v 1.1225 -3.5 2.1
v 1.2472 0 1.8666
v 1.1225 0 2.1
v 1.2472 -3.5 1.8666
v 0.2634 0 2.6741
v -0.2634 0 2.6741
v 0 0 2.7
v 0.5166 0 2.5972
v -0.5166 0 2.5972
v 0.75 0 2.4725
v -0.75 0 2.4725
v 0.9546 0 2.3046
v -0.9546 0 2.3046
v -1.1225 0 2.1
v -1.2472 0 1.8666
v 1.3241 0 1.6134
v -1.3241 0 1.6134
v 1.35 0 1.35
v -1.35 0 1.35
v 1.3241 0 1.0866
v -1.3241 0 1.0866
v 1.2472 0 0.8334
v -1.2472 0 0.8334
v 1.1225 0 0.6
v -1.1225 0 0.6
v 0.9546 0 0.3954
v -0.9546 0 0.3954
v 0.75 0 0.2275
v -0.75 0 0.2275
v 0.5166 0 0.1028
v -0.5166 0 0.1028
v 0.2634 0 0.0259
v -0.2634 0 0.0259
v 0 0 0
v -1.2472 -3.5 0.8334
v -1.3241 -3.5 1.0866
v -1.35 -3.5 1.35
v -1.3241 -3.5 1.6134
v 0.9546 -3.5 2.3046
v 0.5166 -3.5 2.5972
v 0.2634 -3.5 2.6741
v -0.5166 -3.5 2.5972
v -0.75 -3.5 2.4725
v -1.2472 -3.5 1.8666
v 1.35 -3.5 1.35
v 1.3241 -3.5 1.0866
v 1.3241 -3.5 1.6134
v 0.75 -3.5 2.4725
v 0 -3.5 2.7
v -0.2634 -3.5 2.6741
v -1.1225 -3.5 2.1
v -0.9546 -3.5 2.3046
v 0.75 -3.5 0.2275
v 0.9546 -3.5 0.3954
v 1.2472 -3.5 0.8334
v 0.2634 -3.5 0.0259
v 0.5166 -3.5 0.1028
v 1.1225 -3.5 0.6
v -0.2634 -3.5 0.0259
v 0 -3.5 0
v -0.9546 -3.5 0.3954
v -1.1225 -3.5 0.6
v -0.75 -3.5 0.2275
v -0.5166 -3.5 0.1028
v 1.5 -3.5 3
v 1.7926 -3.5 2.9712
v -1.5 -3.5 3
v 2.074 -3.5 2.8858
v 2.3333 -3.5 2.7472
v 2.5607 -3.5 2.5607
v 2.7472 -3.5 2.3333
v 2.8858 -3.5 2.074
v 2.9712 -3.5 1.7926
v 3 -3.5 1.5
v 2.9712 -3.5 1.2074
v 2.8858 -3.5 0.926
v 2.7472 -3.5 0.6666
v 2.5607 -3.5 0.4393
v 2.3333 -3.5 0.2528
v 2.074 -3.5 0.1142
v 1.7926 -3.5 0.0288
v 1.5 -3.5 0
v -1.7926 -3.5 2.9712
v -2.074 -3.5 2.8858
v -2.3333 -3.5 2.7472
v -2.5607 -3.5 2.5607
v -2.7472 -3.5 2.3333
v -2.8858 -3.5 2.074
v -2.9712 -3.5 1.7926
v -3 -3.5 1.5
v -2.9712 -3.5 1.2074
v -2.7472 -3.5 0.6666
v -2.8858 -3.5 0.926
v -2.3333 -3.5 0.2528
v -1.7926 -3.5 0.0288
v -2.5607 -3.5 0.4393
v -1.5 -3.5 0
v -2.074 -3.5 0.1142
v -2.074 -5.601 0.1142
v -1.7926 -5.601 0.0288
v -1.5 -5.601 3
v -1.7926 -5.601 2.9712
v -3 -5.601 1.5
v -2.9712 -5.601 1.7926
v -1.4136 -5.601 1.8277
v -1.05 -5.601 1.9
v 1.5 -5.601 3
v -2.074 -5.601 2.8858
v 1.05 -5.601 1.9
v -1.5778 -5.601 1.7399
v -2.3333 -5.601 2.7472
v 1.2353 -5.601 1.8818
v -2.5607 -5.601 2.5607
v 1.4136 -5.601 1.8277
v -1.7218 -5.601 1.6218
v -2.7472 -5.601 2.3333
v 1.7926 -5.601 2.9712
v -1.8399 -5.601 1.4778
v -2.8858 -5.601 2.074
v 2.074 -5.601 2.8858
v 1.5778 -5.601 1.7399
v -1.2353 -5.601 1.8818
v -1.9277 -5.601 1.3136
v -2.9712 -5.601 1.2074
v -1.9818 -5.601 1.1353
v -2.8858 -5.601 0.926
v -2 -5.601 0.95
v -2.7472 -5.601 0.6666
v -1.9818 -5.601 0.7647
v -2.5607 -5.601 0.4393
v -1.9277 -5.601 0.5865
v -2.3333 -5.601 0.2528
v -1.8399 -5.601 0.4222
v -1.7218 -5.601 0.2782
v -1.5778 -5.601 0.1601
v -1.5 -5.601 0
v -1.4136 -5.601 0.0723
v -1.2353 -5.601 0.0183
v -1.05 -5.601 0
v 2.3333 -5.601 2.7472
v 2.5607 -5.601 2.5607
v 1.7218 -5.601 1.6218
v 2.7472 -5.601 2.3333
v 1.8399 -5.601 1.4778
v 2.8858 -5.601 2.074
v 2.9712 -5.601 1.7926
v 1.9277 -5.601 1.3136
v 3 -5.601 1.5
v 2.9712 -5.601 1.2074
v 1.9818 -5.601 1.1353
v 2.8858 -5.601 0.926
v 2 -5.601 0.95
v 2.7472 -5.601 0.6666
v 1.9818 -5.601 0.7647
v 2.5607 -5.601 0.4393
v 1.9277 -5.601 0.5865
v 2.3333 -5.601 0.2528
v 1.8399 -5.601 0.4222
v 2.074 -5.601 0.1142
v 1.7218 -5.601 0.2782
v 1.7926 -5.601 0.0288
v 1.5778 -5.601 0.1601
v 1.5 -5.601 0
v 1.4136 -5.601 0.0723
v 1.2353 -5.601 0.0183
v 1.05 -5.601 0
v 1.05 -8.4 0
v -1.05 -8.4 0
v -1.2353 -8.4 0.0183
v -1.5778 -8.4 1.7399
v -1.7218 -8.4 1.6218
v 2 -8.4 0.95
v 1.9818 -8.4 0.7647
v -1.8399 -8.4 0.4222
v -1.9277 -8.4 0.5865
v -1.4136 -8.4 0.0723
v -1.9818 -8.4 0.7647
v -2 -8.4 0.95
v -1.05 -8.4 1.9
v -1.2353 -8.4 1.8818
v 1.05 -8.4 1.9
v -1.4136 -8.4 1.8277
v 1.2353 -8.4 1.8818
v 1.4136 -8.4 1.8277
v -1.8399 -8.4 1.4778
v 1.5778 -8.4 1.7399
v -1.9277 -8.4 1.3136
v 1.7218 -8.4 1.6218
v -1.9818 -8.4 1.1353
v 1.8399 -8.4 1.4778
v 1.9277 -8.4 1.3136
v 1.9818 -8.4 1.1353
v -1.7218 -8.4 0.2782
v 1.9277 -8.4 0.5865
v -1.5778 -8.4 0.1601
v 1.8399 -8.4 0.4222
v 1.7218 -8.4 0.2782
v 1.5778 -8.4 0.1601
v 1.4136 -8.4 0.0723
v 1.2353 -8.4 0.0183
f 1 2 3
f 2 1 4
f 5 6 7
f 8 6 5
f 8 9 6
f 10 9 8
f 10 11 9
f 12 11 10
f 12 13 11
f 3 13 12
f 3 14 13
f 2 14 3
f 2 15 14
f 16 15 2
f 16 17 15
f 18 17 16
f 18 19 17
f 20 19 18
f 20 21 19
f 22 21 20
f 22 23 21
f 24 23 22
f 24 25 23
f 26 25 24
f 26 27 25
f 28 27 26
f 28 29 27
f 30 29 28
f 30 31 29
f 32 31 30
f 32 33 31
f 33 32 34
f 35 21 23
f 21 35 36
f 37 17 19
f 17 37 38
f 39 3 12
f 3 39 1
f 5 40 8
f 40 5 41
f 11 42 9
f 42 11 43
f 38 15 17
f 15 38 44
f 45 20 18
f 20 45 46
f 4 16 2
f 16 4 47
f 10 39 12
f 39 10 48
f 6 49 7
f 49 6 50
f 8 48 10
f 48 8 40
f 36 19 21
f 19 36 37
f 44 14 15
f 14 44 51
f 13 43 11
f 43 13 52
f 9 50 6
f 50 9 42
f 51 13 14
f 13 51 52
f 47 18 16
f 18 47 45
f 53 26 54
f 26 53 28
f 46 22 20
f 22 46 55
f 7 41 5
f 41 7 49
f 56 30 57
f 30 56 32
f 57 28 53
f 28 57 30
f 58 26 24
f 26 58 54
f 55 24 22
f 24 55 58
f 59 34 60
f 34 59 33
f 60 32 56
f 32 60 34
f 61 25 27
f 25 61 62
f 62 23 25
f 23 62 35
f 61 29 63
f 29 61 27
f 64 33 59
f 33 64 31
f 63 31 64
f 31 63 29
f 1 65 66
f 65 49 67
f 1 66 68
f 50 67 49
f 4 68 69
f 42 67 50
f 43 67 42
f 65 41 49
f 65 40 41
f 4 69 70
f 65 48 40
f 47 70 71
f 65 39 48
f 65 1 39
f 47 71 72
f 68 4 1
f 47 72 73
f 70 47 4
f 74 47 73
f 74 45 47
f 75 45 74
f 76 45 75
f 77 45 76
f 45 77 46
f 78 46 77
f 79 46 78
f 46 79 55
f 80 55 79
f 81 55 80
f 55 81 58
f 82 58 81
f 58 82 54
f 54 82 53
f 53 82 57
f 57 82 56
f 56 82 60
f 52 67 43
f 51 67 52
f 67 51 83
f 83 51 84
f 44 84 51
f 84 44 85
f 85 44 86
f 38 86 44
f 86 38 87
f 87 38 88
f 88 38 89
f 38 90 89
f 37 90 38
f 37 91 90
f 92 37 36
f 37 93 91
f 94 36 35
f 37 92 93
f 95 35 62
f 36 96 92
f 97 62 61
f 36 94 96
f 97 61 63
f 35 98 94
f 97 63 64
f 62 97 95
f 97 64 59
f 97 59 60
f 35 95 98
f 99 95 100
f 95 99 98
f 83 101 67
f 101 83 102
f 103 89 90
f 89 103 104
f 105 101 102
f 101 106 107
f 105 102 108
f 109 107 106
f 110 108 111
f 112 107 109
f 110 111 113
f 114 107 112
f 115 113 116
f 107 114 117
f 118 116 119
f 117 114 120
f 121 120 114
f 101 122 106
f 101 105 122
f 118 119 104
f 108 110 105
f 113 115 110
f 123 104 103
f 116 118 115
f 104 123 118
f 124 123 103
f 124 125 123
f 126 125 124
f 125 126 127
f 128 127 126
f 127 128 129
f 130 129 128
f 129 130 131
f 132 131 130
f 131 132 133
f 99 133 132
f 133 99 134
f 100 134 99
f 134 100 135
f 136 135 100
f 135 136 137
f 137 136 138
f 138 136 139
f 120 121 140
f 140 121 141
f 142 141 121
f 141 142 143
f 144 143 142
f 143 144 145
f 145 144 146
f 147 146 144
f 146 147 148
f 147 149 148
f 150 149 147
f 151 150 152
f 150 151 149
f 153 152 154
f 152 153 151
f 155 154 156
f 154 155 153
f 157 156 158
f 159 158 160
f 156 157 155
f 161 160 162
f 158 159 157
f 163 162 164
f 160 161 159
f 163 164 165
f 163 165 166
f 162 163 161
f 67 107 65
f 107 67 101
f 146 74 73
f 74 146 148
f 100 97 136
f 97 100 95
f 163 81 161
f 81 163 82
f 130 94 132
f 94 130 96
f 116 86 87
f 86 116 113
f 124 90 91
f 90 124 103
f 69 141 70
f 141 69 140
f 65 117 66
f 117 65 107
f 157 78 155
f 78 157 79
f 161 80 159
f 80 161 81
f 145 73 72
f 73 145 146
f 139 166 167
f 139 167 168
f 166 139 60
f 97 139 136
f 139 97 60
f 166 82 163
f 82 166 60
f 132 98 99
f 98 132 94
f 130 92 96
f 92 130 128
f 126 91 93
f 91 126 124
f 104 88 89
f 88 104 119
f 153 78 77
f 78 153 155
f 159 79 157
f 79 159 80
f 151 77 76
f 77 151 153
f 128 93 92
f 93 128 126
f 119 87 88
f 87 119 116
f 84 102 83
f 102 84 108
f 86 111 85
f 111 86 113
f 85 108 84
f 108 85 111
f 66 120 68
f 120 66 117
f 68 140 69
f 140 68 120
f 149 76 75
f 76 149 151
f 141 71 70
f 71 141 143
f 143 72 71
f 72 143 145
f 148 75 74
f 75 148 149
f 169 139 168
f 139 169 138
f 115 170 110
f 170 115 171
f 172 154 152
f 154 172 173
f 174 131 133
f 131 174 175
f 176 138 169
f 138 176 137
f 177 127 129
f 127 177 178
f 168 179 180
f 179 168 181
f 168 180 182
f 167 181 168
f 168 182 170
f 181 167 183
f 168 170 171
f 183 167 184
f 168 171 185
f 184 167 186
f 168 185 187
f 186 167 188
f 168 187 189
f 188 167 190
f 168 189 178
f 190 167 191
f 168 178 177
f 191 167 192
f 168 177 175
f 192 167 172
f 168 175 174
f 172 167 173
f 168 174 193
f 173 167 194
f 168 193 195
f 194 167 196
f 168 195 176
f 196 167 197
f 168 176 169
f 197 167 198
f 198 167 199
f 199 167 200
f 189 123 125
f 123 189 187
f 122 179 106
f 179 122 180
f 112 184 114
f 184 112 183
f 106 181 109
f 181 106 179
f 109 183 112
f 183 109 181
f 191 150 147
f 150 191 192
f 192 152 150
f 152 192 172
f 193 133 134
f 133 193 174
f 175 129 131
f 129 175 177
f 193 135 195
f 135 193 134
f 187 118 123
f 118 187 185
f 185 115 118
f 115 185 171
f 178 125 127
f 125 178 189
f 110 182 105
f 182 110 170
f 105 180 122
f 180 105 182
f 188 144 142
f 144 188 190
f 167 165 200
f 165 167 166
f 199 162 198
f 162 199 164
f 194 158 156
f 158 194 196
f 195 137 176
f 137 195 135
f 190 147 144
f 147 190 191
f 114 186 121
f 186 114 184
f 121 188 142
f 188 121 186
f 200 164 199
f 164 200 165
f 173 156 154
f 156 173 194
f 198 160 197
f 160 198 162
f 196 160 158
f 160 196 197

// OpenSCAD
// Mounting tab for 1.3" OLED displays. Use the side of a hot
// solder iron to 'rivet' the tabs on the display and main PCB 
// side.

/* [Global] */

// Width of the oval tab at the display side.
w3=1.9;
// Width of the support btween the display and main PCB.
w2=3;
// Diameter of the round tab at the main PCB side. Default
// is for a 3mm home. Hole center is offest by (w1-w3)/2 mm 
// toward the pin row of the display.
w1=2.7;

// Length of the oval tab at the display side.
l3=4;
// Length of space between the display and manin PCB.
l2=6;
// Length of the round tab at the main PCB side (round).
l1=w1;  

// Height of the oval tab at the display side.
h3=2.8;
// Height of space between the display and manin PCB.
h2=2.1;
// Height of the round tab at the main PCB side.
h1=3.5;

/* [Hidden] */

// Roundness
$fn=32;

total_height = h1 + h2 + h3;

// For maintaining manifold.
eps = 0.001;

module oval(x, y, z, w, l, h) {
  translate([x, y, z]) hull() {
    translate([-(l-w)/2, 0, 0]) cylinder(h=h, d=w);
    translate([(l-w)/2, 0, 0]) cylinder(h=h, d=w);
  }
}

module main() {
  translate([0, 0, w1/2]) rotate([90, 0, 0]) union() {
    oval(0, 0, 0, w1, l1, h1+eps);
    oval(0, (w2-w1)/2, h1, w2, l2, h2+eps);
    oval(0, (w3-w1)/2, h1+h2, w3, l3, h3);
  }
}

main();
